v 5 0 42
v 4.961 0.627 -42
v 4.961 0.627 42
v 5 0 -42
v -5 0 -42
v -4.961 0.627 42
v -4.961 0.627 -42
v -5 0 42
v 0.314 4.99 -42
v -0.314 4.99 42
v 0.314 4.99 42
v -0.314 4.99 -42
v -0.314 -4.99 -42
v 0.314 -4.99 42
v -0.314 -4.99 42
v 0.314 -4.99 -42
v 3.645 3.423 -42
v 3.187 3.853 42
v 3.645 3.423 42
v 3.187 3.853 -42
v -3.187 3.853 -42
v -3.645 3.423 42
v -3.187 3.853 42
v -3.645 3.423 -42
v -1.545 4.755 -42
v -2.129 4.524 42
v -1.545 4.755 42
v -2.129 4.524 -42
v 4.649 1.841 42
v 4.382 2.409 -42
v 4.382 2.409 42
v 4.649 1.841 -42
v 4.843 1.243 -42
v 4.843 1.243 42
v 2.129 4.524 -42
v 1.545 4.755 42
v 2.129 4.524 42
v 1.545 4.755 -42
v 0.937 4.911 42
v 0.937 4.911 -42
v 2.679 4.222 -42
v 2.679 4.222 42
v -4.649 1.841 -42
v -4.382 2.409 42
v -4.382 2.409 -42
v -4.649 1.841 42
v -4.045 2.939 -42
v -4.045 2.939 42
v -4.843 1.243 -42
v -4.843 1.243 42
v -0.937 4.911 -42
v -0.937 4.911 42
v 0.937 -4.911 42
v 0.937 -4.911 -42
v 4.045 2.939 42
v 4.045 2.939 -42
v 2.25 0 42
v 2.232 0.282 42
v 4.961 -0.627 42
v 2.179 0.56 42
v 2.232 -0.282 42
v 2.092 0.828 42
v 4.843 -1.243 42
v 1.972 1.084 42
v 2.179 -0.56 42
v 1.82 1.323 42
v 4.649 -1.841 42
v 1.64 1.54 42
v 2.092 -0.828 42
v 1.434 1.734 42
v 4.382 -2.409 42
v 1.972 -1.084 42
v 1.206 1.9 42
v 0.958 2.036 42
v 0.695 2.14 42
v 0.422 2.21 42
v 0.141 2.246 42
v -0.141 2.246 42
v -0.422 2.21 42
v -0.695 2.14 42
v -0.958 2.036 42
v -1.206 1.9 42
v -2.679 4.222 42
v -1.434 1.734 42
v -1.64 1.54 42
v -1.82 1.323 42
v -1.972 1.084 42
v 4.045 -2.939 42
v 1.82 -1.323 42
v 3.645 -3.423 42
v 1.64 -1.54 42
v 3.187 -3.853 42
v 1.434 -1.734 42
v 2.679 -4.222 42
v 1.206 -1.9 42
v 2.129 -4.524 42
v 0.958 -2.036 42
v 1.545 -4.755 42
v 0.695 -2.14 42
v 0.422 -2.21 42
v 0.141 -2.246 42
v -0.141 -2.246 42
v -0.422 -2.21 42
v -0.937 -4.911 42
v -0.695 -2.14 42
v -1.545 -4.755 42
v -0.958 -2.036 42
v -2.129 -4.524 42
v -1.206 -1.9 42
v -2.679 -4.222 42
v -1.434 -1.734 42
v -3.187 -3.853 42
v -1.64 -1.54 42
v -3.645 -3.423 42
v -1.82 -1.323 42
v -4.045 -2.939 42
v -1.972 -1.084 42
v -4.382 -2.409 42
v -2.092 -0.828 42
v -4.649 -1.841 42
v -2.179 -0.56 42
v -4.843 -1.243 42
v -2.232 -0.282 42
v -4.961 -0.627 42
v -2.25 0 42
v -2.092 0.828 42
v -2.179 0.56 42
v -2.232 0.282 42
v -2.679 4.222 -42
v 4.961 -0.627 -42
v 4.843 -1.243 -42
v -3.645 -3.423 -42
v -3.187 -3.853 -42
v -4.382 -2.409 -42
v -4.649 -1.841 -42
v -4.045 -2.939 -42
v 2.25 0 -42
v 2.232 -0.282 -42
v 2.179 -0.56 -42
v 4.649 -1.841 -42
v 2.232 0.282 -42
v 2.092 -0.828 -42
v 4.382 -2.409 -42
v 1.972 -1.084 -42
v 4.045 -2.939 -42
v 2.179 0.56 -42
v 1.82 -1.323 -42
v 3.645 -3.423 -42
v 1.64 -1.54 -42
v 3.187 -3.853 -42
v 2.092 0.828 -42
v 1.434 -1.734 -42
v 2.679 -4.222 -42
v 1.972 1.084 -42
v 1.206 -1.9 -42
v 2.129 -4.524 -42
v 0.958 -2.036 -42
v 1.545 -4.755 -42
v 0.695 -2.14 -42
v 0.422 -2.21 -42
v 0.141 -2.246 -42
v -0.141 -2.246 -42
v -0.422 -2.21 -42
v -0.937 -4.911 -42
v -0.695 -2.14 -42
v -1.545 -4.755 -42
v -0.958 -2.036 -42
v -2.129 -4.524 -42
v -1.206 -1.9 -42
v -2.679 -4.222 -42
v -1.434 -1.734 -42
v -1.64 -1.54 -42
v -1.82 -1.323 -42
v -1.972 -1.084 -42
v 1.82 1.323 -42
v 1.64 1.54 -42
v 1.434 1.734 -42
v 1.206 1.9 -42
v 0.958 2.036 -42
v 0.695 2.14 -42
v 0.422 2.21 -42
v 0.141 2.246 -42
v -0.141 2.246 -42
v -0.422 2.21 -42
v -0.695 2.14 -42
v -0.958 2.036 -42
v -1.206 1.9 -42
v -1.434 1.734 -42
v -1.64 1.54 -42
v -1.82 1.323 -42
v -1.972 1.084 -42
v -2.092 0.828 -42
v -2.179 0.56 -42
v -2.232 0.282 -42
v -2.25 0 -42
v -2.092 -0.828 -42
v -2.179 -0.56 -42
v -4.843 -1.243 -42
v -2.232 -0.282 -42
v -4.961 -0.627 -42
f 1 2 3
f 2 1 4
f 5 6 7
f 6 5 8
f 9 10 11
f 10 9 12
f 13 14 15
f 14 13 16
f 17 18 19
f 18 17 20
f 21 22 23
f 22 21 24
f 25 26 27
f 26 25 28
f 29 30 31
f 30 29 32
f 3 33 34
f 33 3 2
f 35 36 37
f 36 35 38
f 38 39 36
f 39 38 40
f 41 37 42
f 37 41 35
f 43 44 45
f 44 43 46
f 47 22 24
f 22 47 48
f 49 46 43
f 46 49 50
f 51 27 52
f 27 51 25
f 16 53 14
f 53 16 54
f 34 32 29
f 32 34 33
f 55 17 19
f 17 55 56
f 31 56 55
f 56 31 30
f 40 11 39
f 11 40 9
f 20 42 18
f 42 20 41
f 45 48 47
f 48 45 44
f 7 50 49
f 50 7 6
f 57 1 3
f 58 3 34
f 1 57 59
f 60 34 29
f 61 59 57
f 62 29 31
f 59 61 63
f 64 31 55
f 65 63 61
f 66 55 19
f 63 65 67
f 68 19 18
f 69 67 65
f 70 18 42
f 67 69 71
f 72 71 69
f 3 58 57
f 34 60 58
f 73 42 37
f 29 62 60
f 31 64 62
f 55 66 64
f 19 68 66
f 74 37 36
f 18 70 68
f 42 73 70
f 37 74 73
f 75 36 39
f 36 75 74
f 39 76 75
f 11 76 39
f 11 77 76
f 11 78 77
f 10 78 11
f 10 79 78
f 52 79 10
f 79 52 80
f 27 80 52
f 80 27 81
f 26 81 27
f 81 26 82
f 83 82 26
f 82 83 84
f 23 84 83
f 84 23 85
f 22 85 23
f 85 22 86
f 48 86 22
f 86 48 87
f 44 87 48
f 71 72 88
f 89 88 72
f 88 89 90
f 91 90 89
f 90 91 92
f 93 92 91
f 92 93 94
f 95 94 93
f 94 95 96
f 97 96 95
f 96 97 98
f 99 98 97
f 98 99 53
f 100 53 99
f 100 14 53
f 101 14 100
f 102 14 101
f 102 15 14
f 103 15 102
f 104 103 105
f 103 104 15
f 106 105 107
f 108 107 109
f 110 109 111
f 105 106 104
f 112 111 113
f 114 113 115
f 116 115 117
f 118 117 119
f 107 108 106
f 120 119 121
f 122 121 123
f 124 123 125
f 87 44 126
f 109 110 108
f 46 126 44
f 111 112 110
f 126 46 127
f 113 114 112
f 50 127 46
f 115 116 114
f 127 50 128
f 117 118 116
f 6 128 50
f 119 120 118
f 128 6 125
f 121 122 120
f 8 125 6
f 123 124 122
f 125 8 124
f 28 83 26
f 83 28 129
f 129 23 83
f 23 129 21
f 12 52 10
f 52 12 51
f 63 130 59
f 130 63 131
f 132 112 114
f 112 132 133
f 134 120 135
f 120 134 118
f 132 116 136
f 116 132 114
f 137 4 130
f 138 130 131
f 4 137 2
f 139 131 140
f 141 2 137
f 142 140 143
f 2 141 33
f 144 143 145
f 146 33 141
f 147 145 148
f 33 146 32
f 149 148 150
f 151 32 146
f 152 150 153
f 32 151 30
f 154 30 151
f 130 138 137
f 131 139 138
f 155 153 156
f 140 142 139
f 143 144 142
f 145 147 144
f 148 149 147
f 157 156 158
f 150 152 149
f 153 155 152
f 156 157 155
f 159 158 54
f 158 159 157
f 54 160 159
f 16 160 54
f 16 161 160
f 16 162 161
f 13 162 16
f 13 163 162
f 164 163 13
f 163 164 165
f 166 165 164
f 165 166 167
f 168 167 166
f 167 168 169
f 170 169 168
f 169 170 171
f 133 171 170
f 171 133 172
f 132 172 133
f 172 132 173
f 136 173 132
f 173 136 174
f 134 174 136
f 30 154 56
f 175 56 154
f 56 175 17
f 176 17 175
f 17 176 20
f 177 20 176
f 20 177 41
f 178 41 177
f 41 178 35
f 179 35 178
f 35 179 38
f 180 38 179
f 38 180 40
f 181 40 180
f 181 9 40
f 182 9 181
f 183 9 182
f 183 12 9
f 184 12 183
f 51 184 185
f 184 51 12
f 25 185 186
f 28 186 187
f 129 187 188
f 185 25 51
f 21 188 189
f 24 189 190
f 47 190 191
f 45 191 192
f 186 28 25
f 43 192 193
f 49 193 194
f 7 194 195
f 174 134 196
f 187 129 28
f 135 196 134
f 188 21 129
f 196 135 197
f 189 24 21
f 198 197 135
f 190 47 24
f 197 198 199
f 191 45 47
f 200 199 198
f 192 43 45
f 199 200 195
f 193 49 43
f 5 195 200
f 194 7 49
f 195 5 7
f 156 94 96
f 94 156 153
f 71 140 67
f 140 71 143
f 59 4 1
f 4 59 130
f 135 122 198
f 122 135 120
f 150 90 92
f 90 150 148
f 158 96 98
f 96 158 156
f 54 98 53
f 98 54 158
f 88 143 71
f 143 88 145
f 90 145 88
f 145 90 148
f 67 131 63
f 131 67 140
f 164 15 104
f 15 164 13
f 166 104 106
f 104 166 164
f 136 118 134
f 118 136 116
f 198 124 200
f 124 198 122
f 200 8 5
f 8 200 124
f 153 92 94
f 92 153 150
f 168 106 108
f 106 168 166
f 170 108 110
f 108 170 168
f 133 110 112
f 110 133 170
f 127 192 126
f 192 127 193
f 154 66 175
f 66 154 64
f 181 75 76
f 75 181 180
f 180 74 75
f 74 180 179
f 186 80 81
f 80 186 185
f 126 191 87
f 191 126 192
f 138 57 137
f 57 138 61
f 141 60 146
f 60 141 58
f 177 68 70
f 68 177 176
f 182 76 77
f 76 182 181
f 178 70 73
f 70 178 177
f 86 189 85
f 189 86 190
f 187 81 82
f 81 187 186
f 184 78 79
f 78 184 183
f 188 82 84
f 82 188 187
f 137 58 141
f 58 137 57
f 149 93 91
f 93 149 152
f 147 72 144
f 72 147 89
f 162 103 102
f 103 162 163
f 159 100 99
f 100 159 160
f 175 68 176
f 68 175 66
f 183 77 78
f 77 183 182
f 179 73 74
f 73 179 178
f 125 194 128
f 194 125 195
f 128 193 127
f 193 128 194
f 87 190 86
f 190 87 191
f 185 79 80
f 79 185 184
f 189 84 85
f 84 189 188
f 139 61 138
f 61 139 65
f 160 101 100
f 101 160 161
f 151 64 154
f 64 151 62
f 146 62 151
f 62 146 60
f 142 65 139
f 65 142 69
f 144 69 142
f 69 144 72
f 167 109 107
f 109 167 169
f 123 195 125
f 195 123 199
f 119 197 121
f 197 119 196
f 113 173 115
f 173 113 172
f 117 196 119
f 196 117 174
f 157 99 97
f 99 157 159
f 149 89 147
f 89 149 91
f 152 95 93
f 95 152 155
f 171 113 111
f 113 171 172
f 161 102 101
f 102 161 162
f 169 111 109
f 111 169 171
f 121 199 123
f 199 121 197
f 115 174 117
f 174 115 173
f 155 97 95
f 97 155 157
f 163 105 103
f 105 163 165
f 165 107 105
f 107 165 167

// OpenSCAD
$fn = 50;


difference() {
	union() {
		translate(v = [0, 0, -42.0000000000]) {
			cylinder(h = 84, r = 5.0000000000);
		}
	}
	union() {
		translate(v = [0, 0, -100.0000000000]) {
			cylinder(h = 200, r = 2.2500000000);
		}
	}
}
